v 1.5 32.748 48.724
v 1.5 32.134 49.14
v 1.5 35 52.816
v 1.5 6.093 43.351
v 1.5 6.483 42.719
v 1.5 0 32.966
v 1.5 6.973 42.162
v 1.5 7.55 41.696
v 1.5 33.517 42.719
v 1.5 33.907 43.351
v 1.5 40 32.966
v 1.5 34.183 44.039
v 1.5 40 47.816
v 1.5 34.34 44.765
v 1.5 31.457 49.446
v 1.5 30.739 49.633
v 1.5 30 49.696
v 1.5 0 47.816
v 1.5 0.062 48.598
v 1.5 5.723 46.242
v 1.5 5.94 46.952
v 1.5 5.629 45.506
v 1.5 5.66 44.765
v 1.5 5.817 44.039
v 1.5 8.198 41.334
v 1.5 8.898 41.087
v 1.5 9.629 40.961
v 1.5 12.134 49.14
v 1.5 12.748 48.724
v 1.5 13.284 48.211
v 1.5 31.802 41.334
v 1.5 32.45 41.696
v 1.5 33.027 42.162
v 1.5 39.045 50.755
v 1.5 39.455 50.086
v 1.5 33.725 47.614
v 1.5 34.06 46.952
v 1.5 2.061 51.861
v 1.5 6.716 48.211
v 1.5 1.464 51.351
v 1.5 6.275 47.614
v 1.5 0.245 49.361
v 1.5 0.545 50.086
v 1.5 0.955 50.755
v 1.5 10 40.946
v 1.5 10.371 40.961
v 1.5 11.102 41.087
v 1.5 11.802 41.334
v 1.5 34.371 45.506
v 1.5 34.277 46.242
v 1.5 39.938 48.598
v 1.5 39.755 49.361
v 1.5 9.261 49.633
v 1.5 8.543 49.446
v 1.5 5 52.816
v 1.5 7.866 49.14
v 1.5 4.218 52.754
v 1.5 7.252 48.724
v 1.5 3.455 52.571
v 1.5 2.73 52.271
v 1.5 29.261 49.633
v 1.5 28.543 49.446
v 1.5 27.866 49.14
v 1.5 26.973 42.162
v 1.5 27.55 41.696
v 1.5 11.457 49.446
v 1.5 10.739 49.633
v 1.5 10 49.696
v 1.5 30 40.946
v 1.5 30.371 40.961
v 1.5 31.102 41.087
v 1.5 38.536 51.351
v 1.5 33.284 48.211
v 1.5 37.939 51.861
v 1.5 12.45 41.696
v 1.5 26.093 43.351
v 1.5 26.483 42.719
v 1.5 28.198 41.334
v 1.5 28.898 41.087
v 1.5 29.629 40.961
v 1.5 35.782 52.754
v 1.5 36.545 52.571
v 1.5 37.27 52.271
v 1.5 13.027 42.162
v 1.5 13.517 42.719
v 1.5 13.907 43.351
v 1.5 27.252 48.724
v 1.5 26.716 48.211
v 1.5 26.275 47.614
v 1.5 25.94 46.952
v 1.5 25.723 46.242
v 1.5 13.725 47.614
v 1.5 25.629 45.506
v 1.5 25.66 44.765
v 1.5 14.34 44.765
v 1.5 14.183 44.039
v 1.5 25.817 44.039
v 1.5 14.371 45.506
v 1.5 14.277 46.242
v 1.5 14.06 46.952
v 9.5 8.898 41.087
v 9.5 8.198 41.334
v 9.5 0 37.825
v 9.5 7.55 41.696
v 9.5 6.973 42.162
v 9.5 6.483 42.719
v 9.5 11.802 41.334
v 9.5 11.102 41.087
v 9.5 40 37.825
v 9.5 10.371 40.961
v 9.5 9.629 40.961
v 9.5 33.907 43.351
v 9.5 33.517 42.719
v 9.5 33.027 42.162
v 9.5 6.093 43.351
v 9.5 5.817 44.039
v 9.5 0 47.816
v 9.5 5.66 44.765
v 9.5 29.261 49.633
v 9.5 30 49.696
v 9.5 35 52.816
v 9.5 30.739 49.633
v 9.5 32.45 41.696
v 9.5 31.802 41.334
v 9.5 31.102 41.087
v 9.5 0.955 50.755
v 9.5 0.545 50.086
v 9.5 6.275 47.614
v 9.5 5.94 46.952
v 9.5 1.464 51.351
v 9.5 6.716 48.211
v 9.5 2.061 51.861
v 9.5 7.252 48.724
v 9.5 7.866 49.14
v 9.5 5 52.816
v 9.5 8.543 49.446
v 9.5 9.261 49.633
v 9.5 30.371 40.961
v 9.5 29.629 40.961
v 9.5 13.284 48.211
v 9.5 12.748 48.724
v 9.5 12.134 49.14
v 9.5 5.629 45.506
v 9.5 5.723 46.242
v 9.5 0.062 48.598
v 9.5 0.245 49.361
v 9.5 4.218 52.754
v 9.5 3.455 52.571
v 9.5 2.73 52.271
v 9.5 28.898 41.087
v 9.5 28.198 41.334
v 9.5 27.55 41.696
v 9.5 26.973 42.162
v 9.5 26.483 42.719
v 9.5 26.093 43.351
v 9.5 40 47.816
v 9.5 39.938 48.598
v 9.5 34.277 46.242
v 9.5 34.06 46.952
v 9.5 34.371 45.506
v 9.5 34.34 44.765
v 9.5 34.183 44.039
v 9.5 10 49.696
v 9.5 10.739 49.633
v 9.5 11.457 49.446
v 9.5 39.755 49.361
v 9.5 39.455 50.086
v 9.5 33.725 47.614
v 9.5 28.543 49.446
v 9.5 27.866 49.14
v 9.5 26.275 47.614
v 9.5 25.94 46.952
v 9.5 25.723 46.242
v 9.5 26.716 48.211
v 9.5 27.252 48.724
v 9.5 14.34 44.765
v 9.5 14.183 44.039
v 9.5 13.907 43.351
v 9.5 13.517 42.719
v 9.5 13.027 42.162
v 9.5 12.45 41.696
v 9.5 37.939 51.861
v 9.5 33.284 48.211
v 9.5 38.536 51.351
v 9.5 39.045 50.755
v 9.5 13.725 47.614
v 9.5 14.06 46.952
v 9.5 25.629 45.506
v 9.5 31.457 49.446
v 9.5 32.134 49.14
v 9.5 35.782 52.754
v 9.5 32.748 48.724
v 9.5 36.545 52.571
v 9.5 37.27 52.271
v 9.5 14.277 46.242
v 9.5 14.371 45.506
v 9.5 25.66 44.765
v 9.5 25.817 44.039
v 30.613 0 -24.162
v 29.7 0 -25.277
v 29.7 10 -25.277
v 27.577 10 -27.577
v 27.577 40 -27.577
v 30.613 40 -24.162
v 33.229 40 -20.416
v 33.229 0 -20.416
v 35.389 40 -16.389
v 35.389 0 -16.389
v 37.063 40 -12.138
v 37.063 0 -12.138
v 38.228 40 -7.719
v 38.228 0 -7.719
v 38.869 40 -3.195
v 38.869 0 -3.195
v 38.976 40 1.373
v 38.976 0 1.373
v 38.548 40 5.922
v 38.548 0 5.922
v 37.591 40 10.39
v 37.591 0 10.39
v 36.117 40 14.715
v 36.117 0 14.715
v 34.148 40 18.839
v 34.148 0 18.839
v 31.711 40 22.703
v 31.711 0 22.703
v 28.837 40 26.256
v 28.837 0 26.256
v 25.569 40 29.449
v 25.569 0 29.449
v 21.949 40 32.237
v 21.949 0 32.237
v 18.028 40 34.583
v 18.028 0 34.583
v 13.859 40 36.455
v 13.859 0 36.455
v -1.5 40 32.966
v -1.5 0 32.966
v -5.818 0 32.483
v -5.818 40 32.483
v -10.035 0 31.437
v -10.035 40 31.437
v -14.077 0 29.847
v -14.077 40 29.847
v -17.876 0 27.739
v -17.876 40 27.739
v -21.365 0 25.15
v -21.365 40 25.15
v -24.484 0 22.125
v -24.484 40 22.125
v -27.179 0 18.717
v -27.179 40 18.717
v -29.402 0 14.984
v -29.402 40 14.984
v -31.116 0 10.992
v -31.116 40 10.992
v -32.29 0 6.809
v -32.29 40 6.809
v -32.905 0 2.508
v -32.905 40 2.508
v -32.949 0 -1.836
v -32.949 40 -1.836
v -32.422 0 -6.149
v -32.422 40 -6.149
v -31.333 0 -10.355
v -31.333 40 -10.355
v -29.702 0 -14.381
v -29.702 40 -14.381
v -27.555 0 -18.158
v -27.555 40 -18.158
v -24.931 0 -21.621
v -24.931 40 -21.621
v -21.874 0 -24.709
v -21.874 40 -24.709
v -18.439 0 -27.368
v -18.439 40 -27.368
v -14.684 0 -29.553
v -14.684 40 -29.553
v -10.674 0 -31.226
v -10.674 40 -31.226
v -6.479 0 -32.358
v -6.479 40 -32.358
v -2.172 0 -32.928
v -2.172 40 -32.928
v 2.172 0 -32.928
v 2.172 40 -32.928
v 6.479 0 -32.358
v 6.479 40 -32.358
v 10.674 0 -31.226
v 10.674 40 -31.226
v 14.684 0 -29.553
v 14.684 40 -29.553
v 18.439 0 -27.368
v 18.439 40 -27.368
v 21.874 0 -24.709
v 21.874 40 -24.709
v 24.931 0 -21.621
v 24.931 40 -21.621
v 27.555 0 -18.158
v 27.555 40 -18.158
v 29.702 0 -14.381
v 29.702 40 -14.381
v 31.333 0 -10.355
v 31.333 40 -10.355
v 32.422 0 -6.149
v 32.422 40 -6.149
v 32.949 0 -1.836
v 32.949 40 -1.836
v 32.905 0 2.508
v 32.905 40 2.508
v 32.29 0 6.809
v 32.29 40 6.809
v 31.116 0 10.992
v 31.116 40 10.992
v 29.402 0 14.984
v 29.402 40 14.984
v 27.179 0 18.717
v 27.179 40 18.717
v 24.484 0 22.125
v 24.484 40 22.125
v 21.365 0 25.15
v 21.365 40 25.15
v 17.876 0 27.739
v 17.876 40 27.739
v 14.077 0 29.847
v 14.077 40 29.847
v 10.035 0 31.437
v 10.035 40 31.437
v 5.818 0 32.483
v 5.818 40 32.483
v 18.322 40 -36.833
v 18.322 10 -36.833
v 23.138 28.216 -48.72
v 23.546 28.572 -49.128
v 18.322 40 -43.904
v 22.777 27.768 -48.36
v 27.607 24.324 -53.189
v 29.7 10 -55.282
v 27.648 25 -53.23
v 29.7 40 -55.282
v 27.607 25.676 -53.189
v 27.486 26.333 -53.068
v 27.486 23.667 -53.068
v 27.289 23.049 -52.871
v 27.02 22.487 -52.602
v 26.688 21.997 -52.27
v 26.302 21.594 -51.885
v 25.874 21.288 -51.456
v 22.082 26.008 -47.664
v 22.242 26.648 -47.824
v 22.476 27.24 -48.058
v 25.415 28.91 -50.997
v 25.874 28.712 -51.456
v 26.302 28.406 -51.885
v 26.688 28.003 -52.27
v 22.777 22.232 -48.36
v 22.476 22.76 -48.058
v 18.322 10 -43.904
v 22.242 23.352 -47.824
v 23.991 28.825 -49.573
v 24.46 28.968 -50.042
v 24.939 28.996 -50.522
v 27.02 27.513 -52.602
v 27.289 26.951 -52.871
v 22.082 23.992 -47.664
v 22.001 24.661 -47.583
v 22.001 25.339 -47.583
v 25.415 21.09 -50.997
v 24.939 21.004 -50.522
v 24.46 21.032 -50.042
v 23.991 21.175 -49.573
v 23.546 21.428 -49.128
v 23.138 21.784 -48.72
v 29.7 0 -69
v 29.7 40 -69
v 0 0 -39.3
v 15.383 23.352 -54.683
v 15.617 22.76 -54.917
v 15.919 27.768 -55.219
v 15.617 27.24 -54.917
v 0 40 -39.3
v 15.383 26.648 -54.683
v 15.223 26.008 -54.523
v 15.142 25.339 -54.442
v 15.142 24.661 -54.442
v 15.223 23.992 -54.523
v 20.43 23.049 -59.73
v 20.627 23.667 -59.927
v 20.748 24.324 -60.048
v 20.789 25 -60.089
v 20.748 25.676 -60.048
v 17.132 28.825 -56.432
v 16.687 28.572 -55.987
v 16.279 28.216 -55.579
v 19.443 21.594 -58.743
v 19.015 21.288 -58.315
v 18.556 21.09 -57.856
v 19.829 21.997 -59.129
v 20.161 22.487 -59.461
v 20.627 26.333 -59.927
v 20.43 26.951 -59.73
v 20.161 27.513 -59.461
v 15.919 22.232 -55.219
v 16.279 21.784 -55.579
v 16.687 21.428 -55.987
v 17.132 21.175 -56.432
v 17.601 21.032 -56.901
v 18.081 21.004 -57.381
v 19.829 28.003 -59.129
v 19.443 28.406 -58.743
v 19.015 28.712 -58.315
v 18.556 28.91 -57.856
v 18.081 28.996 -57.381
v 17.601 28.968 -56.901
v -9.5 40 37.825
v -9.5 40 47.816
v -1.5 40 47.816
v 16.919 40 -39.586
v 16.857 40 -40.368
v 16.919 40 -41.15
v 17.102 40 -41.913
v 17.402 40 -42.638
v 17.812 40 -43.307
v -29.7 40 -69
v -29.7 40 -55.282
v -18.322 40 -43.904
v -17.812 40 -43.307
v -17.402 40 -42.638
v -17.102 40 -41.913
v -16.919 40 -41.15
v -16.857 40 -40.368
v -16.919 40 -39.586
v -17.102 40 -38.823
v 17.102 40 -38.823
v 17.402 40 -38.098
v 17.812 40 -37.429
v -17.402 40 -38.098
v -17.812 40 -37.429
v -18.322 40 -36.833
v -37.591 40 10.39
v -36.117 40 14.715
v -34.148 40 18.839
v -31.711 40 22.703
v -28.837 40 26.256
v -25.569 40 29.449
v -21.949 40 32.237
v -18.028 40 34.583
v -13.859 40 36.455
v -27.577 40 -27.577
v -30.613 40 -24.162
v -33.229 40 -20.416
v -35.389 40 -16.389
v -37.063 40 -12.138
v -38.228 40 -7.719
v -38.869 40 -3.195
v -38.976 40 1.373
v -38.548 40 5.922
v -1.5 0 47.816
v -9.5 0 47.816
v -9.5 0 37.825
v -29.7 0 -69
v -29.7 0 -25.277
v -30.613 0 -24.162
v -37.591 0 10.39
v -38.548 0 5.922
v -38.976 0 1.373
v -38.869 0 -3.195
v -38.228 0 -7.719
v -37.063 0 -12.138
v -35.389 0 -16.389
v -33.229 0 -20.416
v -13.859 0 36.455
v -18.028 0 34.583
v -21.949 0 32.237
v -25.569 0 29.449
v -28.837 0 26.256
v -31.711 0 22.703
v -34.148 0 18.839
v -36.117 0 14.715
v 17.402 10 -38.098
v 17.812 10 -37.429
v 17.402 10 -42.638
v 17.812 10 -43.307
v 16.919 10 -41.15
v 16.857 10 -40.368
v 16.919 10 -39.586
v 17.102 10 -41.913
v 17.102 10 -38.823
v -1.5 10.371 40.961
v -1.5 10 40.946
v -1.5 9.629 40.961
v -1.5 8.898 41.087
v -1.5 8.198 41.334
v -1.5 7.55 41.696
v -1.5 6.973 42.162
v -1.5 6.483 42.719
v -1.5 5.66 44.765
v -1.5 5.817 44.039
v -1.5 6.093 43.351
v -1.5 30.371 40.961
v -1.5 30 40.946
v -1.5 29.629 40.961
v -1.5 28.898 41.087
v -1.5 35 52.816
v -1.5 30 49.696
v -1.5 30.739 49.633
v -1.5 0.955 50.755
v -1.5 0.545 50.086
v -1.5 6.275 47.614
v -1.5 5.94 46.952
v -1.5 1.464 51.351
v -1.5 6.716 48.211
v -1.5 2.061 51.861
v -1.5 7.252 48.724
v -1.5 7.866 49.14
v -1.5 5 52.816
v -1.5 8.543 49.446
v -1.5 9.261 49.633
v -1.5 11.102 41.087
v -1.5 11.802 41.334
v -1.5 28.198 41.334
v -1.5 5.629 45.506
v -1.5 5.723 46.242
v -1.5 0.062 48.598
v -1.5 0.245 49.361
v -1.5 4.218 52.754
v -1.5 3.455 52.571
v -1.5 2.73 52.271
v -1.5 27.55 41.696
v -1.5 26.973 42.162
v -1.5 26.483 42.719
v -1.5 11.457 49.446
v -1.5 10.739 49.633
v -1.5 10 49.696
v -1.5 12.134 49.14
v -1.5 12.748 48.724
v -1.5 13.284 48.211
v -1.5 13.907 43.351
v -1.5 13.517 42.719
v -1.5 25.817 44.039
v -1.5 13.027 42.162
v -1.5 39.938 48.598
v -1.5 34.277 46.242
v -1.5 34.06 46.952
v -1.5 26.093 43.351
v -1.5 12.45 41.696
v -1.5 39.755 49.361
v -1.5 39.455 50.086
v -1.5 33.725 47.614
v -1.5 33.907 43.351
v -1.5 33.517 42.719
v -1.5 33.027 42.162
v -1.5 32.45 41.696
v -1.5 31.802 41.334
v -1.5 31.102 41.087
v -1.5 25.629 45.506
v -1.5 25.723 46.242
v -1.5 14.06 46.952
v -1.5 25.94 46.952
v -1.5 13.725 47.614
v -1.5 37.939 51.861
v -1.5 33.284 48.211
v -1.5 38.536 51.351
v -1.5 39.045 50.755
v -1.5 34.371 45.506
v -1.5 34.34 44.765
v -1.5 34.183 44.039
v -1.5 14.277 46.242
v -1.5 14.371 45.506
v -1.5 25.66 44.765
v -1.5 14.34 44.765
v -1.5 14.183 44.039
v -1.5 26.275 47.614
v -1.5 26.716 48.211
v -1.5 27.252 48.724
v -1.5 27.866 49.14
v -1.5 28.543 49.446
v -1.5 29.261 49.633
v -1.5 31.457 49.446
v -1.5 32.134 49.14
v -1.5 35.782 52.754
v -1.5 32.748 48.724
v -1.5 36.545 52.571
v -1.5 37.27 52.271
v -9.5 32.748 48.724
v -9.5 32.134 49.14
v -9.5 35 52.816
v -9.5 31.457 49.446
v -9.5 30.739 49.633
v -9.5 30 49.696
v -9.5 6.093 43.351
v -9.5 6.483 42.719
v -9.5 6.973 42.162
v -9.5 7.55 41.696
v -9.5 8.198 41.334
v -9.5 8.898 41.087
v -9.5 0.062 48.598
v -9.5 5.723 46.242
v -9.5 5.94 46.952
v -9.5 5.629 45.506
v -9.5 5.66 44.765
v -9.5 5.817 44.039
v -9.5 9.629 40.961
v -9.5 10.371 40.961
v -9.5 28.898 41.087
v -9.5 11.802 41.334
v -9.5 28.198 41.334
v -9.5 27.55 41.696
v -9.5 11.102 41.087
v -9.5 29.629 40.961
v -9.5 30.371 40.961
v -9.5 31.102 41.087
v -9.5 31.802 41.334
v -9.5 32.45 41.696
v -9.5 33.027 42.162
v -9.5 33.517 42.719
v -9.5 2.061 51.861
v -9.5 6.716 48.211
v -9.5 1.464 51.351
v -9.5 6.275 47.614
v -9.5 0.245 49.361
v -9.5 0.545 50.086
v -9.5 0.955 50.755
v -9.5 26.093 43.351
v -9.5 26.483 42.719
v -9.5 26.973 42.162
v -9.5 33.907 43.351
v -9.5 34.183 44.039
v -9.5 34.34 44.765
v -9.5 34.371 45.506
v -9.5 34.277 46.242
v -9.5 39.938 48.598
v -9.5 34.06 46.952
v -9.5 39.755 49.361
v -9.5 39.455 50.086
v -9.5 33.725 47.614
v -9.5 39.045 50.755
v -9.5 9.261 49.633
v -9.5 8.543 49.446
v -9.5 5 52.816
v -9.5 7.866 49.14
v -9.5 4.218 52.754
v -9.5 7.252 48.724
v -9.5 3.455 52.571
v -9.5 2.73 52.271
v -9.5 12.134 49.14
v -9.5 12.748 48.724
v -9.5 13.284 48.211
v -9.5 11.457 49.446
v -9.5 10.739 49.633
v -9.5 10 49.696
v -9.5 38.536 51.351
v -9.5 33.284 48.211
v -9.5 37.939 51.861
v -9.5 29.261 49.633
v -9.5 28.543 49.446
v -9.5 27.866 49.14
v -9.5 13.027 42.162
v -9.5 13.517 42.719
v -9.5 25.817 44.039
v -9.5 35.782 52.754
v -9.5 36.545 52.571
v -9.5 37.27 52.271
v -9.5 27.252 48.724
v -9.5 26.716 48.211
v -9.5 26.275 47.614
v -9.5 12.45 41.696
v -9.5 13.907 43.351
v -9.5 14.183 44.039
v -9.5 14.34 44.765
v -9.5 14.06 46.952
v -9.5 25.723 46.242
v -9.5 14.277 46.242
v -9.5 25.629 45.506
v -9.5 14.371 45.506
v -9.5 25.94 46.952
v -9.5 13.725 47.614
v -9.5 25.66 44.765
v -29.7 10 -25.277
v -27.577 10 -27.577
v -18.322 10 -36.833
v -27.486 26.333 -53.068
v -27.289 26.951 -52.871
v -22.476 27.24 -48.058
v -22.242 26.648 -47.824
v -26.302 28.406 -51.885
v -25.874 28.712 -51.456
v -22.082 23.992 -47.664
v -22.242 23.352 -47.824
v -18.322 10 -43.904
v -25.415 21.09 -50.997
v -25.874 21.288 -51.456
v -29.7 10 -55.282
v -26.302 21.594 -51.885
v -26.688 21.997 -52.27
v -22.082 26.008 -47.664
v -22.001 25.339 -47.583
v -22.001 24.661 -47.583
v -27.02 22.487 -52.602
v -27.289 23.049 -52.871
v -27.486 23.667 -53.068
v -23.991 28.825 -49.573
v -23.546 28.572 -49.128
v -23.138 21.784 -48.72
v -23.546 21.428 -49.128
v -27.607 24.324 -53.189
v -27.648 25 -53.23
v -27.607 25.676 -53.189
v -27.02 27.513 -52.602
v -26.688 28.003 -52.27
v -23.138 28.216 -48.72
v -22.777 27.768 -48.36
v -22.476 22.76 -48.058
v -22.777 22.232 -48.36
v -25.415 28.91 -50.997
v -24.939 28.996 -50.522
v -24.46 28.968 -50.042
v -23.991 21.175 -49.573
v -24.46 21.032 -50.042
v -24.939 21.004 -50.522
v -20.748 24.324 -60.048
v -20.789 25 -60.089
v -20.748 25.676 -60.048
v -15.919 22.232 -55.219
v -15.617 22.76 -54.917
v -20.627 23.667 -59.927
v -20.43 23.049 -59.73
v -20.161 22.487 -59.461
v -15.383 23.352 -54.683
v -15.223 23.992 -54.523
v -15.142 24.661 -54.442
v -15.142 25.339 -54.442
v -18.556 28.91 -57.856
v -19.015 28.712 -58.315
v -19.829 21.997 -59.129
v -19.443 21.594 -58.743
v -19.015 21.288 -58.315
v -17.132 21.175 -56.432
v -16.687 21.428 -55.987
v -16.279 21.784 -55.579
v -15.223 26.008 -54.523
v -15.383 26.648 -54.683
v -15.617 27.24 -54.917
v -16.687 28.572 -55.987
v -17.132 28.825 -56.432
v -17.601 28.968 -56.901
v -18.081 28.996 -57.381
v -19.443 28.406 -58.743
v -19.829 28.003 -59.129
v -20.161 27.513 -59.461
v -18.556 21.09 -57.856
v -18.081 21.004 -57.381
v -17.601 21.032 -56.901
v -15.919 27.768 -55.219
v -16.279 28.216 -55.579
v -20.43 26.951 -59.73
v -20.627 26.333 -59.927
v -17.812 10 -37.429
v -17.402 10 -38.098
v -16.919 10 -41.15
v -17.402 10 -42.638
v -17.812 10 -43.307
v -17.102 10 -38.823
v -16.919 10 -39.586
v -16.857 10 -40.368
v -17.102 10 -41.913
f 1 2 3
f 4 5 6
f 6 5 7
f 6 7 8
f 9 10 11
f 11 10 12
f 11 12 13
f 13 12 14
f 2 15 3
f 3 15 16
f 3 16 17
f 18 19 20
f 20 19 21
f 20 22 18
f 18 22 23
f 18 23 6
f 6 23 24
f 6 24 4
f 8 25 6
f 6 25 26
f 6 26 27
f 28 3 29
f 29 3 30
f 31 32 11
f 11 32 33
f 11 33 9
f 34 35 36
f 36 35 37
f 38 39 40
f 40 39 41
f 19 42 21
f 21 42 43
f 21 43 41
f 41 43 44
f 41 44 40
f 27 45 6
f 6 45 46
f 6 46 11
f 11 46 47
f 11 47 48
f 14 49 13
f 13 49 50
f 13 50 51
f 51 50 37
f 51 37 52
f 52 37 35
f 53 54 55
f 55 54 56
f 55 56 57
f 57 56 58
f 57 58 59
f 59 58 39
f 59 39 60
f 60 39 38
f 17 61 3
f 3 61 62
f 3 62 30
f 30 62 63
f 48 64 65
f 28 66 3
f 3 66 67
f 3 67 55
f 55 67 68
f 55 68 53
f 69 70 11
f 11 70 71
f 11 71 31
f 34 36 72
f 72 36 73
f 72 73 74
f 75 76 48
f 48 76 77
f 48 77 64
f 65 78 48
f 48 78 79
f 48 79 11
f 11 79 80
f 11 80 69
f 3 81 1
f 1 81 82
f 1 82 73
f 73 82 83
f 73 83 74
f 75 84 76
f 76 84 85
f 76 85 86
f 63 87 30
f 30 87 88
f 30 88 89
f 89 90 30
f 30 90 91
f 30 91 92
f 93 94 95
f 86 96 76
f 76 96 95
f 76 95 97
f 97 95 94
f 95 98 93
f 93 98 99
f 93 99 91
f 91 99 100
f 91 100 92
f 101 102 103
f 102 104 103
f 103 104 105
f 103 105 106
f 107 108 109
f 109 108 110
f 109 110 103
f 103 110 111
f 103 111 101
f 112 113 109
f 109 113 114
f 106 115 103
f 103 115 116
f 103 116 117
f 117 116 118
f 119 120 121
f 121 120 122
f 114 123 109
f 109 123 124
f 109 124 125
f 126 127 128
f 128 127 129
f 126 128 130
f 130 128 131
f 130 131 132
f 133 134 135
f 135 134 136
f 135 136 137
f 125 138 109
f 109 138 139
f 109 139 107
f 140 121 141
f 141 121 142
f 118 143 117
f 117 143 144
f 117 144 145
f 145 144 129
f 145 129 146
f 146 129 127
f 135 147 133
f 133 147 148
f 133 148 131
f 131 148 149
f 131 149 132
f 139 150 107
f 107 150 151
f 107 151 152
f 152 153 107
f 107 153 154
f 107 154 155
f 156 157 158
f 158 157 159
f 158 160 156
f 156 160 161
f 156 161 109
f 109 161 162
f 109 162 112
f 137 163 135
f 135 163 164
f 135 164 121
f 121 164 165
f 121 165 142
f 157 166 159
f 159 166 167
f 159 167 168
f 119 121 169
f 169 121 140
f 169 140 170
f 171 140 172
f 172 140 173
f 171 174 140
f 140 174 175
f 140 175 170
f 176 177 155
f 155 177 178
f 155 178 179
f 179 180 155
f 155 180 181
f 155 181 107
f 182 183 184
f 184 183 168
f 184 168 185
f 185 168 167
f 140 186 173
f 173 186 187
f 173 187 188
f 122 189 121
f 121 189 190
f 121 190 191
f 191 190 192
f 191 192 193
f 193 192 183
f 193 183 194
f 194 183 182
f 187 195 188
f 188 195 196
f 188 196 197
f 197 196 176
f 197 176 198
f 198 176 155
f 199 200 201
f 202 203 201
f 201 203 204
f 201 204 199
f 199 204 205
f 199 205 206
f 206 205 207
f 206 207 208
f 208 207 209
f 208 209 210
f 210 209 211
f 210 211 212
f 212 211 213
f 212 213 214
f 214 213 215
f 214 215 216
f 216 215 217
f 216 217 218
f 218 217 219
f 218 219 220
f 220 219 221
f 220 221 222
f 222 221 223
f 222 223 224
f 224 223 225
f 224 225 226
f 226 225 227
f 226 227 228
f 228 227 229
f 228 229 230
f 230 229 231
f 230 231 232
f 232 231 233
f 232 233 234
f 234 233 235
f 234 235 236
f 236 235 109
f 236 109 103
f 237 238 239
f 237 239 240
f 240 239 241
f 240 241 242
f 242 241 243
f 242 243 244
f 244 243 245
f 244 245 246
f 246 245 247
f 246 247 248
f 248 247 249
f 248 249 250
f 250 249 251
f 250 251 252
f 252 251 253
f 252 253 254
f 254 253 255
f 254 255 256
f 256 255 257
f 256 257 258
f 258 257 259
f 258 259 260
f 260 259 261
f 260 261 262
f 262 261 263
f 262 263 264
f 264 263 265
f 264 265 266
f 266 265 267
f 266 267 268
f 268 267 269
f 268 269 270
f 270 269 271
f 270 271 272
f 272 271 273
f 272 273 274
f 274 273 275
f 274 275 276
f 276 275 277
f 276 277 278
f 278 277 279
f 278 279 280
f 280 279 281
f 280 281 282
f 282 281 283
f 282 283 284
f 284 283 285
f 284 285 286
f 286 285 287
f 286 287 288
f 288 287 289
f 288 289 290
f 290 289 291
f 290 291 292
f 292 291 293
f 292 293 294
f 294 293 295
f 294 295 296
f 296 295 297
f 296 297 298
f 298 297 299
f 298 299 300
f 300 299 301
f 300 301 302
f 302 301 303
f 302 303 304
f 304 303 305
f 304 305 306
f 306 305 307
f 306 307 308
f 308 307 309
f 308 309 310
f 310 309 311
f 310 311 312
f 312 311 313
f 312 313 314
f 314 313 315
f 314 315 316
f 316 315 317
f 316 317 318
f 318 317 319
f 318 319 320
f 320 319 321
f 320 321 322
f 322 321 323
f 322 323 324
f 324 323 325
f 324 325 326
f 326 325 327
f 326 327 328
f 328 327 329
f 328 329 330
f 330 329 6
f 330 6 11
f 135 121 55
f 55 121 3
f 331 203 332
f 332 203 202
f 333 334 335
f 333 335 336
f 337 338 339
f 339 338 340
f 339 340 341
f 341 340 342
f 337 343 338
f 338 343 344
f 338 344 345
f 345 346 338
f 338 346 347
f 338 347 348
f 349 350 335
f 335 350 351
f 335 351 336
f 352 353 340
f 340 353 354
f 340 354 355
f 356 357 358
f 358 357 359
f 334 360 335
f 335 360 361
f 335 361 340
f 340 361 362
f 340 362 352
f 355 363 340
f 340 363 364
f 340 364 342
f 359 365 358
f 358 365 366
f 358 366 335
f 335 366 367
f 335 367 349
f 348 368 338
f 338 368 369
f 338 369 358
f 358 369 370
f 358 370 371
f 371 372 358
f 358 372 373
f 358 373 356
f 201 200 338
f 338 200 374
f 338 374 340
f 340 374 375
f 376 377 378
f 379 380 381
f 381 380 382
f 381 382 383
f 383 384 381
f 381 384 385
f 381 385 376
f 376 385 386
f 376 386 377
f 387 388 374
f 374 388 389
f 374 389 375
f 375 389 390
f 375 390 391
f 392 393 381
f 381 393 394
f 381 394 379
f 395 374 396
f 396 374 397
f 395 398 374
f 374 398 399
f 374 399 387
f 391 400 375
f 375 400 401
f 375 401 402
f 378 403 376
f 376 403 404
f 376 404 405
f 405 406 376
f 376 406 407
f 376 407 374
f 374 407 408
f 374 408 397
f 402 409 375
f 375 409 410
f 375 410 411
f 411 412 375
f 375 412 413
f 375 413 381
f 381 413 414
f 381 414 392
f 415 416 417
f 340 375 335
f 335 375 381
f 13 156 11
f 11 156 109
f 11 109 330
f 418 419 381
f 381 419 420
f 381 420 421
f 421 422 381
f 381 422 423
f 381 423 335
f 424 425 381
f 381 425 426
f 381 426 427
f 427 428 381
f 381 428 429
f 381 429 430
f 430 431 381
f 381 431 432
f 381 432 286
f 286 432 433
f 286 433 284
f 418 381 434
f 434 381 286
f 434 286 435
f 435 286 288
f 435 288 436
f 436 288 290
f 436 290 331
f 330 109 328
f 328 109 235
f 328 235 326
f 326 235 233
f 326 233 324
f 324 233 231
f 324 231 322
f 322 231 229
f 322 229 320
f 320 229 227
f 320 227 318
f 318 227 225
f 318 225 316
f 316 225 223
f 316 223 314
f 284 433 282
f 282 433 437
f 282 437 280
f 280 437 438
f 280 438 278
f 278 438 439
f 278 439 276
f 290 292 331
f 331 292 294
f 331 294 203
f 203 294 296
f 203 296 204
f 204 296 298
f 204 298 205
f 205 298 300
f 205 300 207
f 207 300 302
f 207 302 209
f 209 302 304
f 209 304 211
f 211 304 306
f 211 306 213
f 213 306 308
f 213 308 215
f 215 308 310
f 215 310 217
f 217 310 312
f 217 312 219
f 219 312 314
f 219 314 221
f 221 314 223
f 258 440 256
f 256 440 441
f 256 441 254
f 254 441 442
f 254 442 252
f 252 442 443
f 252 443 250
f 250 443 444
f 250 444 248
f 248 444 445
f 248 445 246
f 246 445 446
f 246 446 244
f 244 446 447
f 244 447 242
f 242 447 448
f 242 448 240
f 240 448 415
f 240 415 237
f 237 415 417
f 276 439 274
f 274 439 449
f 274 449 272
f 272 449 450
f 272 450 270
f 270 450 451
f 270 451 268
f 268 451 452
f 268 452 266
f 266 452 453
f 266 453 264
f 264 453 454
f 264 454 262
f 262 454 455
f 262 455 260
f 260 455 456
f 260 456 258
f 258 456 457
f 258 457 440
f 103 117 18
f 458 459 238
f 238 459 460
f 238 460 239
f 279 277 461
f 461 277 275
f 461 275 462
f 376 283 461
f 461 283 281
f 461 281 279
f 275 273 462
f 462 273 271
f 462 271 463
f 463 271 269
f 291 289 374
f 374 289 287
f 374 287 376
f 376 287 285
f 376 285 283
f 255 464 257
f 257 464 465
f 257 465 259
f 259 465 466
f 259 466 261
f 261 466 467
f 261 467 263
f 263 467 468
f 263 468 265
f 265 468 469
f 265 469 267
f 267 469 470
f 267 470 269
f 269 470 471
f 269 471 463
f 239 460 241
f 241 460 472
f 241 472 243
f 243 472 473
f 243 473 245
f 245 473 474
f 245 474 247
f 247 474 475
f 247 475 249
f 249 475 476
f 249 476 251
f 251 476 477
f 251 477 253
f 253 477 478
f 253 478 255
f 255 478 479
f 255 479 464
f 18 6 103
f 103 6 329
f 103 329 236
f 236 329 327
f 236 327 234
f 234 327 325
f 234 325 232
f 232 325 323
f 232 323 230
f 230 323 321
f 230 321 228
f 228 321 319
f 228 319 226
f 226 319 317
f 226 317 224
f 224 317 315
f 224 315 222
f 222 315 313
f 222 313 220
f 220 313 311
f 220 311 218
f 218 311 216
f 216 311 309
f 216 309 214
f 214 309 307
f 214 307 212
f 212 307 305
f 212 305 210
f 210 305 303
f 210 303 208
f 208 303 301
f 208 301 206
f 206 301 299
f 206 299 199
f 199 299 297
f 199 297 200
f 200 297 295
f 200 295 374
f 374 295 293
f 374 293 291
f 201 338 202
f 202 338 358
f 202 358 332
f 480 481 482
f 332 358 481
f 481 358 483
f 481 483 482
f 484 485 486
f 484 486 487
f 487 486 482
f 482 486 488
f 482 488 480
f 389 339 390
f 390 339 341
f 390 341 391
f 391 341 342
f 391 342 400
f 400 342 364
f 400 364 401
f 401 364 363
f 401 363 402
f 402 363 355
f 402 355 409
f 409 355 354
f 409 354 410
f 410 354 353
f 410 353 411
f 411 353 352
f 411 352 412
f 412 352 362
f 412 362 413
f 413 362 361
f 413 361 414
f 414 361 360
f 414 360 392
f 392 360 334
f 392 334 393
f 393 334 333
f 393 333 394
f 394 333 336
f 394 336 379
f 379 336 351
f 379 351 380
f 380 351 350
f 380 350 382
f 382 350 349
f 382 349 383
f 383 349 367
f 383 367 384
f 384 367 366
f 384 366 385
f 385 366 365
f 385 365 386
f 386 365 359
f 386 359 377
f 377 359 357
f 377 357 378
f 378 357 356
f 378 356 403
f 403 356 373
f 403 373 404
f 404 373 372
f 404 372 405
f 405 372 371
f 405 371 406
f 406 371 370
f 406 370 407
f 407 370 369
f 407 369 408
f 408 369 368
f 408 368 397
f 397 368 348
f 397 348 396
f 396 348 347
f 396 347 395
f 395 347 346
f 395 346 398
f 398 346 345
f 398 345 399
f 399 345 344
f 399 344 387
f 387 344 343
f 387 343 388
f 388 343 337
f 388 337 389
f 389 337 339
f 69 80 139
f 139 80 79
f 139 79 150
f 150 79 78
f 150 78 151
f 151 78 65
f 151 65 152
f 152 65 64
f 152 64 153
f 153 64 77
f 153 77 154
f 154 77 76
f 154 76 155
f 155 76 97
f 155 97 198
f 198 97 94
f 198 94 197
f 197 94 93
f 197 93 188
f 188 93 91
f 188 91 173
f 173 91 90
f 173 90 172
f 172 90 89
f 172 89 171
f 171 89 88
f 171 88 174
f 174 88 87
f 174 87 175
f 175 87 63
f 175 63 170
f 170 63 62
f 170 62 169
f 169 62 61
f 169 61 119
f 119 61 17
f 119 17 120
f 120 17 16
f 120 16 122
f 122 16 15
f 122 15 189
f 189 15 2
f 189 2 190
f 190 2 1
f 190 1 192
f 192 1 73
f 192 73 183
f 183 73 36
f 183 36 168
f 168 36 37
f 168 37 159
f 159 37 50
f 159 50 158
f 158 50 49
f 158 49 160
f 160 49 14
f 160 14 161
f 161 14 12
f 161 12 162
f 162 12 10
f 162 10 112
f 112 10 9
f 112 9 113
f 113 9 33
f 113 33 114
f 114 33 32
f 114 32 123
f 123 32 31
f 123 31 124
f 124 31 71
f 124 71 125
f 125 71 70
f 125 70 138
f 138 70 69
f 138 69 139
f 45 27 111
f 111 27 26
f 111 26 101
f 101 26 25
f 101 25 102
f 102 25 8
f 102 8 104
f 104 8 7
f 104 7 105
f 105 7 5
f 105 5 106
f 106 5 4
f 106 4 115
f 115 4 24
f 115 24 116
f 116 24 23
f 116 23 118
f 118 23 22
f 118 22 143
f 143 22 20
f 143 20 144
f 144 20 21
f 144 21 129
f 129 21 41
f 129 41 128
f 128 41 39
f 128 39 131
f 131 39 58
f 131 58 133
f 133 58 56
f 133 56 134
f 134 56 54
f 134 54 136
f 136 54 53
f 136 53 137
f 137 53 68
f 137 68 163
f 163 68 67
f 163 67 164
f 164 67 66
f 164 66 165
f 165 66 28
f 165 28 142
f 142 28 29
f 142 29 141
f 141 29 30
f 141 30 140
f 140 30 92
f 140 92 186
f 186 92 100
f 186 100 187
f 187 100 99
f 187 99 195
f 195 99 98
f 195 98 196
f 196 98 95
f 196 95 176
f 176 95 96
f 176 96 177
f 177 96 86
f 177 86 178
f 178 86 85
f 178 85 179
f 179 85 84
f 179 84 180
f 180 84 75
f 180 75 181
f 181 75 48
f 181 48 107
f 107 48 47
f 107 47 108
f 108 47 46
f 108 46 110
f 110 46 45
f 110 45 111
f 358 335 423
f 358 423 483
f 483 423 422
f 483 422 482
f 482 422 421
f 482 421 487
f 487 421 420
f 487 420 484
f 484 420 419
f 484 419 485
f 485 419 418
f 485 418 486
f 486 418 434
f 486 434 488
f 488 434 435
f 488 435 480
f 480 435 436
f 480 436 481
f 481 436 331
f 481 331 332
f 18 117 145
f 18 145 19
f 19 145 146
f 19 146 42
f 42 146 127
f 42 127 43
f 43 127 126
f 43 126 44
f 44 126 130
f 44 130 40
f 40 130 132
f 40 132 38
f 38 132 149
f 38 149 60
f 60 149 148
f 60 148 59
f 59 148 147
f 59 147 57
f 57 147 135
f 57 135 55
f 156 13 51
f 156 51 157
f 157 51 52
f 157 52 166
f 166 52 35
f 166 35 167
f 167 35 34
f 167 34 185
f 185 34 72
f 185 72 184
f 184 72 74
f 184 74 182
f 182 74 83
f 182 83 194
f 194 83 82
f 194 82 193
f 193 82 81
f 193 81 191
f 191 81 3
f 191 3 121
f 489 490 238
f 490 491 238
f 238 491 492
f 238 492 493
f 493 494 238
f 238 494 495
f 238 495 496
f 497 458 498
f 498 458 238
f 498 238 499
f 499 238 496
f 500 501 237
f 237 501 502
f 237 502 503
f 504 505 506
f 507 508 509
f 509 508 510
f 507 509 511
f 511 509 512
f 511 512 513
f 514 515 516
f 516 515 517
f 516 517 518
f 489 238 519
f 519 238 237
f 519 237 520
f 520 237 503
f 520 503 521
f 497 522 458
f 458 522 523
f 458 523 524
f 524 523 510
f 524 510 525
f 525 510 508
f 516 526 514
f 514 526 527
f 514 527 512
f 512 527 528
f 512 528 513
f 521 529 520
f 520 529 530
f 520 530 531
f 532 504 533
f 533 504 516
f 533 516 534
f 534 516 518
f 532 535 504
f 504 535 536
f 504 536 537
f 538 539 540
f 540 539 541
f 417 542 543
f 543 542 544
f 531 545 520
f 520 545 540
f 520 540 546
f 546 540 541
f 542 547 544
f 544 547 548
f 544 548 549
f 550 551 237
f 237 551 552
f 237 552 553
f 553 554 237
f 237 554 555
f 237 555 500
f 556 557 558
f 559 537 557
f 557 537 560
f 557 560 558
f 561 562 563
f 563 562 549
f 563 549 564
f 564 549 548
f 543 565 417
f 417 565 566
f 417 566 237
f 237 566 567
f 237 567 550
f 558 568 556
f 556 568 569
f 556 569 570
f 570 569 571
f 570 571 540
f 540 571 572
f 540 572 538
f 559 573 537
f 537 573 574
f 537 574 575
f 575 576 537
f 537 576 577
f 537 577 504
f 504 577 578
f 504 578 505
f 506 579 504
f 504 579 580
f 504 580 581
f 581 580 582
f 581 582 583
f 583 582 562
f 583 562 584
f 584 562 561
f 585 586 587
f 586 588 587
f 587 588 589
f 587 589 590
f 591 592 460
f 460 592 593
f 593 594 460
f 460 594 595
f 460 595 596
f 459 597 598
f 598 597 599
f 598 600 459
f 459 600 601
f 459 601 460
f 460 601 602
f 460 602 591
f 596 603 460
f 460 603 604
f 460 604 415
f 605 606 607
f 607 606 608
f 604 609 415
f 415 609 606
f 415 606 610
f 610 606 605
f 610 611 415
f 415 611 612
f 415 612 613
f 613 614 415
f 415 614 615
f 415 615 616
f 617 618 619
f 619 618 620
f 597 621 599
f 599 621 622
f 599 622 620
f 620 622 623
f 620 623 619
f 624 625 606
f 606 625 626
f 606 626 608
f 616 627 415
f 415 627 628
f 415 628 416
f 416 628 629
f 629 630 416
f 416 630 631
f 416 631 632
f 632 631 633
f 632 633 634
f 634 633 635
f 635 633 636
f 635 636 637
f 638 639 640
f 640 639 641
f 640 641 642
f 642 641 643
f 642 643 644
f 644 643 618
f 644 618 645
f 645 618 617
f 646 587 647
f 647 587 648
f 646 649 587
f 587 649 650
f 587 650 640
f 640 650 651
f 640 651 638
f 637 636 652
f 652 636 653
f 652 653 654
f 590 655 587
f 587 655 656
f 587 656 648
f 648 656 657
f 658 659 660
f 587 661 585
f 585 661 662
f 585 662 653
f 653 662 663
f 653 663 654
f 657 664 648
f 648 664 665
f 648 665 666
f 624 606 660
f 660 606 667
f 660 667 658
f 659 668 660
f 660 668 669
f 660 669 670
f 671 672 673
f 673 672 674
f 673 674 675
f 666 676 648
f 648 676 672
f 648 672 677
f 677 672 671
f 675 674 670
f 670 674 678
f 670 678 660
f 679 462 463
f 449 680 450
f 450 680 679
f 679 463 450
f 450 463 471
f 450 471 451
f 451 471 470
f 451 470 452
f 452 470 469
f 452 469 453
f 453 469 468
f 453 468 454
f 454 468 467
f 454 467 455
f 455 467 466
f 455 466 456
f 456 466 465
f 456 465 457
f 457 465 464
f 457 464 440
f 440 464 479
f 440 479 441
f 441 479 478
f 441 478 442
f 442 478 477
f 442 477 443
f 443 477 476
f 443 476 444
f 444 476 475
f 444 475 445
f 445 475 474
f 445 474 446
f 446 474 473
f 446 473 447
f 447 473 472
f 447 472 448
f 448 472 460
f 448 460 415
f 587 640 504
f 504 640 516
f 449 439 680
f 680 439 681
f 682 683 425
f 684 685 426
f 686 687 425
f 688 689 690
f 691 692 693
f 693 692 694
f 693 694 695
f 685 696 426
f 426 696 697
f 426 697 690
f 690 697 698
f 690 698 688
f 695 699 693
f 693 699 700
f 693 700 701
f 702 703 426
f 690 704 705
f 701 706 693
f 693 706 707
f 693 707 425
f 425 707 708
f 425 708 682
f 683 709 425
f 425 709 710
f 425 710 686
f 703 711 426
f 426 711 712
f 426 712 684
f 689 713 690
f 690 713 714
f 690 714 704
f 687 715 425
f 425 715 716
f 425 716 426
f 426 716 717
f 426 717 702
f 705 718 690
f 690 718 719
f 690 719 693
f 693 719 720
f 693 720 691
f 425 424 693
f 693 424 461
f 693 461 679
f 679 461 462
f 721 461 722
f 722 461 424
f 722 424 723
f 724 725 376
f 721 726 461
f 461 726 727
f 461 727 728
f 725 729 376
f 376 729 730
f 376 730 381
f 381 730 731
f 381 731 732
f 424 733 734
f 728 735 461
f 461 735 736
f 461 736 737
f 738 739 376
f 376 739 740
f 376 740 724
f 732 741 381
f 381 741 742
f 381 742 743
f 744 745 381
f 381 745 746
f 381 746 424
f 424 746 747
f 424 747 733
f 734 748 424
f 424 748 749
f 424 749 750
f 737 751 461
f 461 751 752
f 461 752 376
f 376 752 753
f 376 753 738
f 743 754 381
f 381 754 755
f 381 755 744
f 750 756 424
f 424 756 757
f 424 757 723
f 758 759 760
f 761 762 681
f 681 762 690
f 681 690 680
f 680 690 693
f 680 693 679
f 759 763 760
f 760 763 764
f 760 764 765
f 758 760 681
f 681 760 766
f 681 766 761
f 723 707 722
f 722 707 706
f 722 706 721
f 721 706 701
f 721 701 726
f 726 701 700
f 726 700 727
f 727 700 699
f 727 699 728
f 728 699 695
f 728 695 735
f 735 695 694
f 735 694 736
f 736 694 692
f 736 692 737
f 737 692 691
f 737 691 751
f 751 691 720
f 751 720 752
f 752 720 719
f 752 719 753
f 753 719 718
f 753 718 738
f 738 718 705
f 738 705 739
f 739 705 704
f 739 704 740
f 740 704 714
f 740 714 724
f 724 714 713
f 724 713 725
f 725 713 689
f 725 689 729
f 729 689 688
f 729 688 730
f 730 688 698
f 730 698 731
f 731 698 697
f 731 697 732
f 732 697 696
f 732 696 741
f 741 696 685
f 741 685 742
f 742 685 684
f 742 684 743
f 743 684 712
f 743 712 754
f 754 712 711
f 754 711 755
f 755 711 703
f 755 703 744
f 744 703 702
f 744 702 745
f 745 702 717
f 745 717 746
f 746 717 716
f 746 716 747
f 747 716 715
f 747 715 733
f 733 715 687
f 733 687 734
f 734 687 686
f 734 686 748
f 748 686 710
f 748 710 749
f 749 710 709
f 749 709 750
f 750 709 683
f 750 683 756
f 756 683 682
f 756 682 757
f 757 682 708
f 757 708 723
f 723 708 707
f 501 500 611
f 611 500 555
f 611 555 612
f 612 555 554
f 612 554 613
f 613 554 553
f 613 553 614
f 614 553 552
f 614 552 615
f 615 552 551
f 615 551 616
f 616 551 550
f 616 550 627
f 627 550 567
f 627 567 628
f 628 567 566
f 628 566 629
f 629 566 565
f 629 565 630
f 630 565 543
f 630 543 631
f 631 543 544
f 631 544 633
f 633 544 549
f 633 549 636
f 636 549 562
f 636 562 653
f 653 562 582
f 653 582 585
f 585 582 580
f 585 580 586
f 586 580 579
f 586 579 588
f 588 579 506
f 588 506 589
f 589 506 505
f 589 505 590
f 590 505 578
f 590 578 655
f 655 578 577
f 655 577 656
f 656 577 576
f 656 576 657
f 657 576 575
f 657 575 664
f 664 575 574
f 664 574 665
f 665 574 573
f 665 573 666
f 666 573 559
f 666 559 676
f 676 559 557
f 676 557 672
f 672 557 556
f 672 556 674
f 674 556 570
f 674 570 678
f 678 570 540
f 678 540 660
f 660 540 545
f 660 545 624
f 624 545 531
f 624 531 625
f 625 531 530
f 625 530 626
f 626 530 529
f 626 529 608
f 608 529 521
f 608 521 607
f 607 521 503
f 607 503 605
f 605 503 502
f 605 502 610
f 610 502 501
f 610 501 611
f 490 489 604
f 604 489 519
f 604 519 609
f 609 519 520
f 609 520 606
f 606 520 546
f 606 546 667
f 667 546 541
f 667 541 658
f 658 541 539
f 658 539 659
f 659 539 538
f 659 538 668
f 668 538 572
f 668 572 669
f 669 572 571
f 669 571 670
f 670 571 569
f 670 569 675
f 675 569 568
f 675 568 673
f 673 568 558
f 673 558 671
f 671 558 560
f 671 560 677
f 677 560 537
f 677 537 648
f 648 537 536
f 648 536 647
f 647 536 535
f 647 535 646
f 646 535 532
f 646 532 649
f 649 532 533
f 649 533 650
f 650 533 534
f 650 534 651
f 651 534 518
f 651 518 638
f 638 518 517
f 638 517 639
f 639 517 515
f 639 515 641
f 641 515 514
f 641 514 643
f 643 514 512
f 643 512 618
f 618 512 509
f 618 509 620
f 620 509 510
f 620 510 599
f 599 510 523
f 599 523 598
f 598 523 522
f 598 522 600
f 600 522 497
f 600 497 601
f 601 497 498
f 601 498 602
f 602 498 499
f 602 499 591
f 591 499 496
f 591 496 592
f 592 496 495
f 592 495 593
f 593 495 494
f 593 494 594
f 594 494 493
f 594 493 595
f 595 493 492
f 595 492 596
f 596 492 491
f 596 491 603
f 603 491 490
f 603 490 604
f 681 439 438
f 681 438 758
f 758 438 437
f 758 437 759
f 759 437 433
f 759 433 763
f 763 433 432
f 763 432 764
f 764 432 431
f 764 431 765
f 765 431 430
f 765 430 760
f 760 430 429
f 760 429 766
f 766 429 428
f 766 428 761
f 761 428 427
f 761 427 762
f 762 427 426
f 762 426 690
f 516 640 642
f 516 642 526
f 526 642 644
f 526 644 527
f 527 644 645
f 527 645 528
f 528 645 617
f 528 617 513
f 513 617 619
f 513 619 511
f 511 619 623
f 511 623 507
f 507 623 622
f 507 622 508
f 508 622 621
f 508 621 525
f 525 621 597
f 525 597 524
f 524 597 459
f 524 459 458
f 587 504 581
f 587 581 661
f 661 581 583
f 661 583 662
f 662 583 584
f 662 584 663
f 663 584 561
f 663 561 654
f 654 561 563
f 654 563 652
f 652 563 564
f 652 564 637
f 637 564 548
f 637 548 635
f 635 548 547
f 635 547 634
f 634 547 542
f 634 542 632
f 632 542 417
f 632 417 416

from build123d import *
from build123d.topology import SkipClean

# Parameters (mm, degrees)
BOSS_EXTRUDE7_DEPTH = 40
BOSS_EXTRUDE8_DEPTH = 10
SKETCH16_R          = 4
CUT_EXTRUDE6_DEPTH  = 93.663838512
SKETCH17_R          = 4.375
CUT_EXTRUDE7_DEPTH  = 10
FILLET2_R           = 5


with BuildPart() as part:
    # Sketch15 → Boss-Extrude7 (new body)
    with BuildSketch(Plane(origin=(0, 0, 0), x_dir=(0, 0, -1), z_dir=(0, 1, 0))):
        with BuildLine():
            ThreePointArc((33, 0), (0.750193874, -32.991471764), (-32.965891464, -1.5))
            Line((-32.965891464, -1.5), (-52.815891464, -1.5))
            Line((-52.815891464, -1.5), (-52.815891464, -9.5))
            Line((-52.815891464, -9.5), (-37.825256113, -9.5))
            ThreePointArc((-37.825256113, -9.5), (-11.890195924, -37.143279889), (25.276669084, -29.7))
            ThreePointArc((25.276669084, -29.7), (26.44822372, -28.661672353), (27.577164466, -27.577164466))
            Line((27.577164466, -27.577164466), (40.368228689, -14.786100244))
            Line((40.368228689, -14.786100244), (55.282128445, -29.7))
            Line((55.282128445, -29.7), (69, -29.7))
            Line((69, -29.7), (39.3, 0))
            Line((39.3, 0), (33, 0))
        make_face()
    extrude(amount=BOSS_EXTRUDE7_DEPTH)

    # Sketch15<4> → Boss-Extrude8 (add)
    with BuildSketch(Plane(origin=(0, 0, 0), x_dir=(0, 0, -1), z_dir=(0, 1, 0))):
        with BuildLine():
            ThreePointArc((27.577164466, -27.577164466), (26.44822372, -28.661672353), (25.276669084, -29.7))
            Line((25.276669084, -29.7), (55.282128445, -29.7))
            Line((55.282128445, -29.7), (40.368228689, -14.786100244))
            Line((40.368228689, -14.786100244), (27.577164466, -27.577164466))
        make_face()
    extrude(amount=BOSS_EXTRUDE8_DEPTH)

    # Sketch16 → Cut-Extrude6 (cut, through all)
    with BuildSketch(Plane(origin=(-12.791064222, 0, -12.791064222), x_dir=(-0.707106781186546, 0, 0.707106781186549), z_dir=(0.707106781186549, 0, 0.707106781186546))):
        with Locations((-53.189296501, -25)):
            Circle(SKETCH16_R)
    extrude(amount=-CUT_EXTRUDE6_DEPTH, mode=Mode.SUBTRACT)

    # Sketch17 → Cut-Extrude7 (cut)
    with BuildSketch(Plane(origin=(0, 0, 0), x_dir=(0, -1, 0), z_dir=(1, 0, 0))):
        with Locations((-30, -45.320573788)):
            Circle(SKETCH17_R)
        with Locations((-10, -45.320573788)):
            Circle(SKETCH17_R)
    extrude(amount=CUT_EXTRUDE7_DEPTH, mode=Mode.SUBTRACT)

    # Fillet2
    fillet2_edges = [part.edges().sort_by_distance(p)[0] for p in [
        (14.786100244, 25, -40.368228689),
        (5.5, 0, 52.815891464),
        (5.5, 40, 52.815891464),
    ]]
    fillet(fillet2_edges, radius=FILLET2_R)

    # Mirror2: part across plane


with BuildPart() as part_1:
    with SkipClean():  # the faces are left unmerged after this step: merging them gives an invalid solid
        add(part.part)
        add(part.part.mirror(Plane(origin=(0, 40, 0), x_dir=(0, 0, 1), z_dir=(-1, 0, 0))))


solid = part_1.part
